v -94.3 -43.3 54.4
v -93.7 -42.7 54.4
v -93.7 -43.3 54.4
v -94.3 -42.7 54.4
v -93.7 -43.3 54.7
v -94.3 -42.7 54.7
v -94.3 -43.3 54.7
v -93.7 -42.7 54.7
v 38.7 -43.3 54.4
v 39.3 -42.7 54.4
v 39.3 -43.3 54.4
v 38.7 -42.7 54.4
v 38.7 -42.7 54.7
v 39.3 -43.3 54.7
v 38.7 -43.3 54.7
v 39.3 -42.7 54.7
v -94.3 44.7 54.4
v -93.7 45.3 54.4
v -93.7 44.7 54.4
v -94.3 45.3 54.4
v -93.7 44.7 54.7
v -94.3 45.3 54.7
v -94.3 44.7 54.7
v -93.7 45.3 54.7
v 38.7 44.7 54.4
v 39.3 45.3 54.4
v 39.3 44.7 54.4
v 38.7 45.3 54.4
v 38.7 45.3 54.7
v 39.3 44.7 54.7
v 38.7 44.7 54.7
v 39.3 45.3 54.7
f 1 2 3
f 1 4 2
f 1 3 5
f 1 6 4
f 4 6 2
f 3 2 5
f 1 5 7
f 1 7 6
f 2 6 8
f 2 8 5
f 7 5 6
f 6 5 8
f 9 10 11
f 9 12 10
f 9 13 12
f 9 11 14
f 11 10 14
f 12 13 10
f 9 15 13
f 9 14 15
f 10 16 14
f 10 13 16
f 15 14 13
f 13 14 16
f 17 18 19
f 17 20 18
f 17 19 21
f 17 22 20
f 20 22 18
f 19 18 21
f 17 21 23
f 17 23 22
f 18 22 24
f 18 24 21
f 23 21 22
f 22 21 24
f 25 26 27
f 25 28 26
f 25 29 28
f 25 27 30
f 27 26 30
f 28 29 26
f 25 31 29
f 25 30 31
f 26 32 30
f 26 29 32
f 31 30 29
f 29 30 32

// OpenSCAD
// file: ../../../cad/v3/hardware.scad
include <params.scad>
use <enclosure.scad>
// PROVISIONAL purchased component envelopes; not production part drawings.
module motor() {
 union() {
  translate([screw_x-6,motor_front-motor_l,motor_bottom]) cube([12,motor_l,10]);
  yrod(screw_x,motor_front-0.1,axis_z,shaft_d,shaft_l+0.1);
  for(x=[screw_x-3,screw_x+3]) translate([x-0.5,motor_front-motor_l-2,motor_bottom+4.5]) cube([1,2.1,1]);
 }
}
module shaft() { yrod(screw_x,motor_front,axis_z,shaft_d,shaft_l); }
module drive_nut(t=0) {
 difference() {
  translate([screw_x,carriage_back+t+nut_slot_y+0.1,axis_z]) rotate([-90,0,0]) union() {
   cylinder(d=nut_af/cos(30),h=nut_height,$fn=6);
   cylinder(d=nut_flange_d,h=nut_flange_t);
  }
  yrod(screw_x,carriage_back+t+nut_slot_y,axis_z,shaft_d+0.2,nut_height+0.2);
 }
}
module battery_holder(raise=0) {
 // Conservative single envelope including cell, contacts and holder.
 translate([93.2,-52,4.5+raise]) cube([22,74,21]);
}
module esp() {
 union() {
  translate([77.5,28,8.3]) cube([17.8,22.5,1.2]);
  translate([78.5,29,9.5]) cube([15.8,20.5,5]);
  translate([81.5,47,9.5]) cube([9,5,3.3]);
 }
}
module power_board() { translate([99,29,8.3]) cube([15,20,7.2]); }
module bridge_board() { translate([98.5,29,20.3]) cube([15,20,7]); }
module oled() {
 union() {
  translate([87.6,53.5,21.5]) cube([27.8,1.6,27.3]);
  translate([88.15,55.1,25]) cube([26.7,1.4,19.3]);
  translate([96.5,50.5,46]) cube([10,3,2.8]);
 }
}
module button() {
 union() {
  xrod(button_panel_x-button_body_l,button_y,button_z,button_body_d,button_body_l);
  xrod(button_panel_x,button_y,button_z,button_flange_d,2);
  xrod(button_panel_x+2,button_y,button_z,12.9,button_face_l-2);
  // Candidate fastening nut envelope; actual nut diameter/thickness to measure.
  difference() {
   xrod(button_panel_x-6,button_y,button_z,17.8,3);
   xrod(button_panel_x-6.1,button_y,button_z,button_hole_d,3.2);
  }
  // Two terminals only; solder and bend radius need physical confirmation.
  for(y=[button_y-2.425,button_y+2.425])
   translate([button_panel_x-button_body_l-button_terminal_l,y-.3,button_z-1]) cube([button_terminal_l,.6,2]);
 }
}
module acrylic() { translate([window_x0-2,window_y0-2,window_pane_z]) cube([window_x1-window_x0+4,window_y1-window_y0+4,window_pane_t]); }
module hinge_pin() { xrod(hinge_pin_x,hinge_y,hinge_z,2,hinge_pin_len); }
module thread_insert(x,y,z) {
 difference() {
  zhole(x,y,z,insert_od,insert_len);
  zhole(x,y,z-.1,2.05,insert_len+.2);
 }
}
module inserts_fixed() {
 for(p=battery_screws) thread_insert(p[0],p[1],2.9);
 for(x=keeper_x) thread_insert(x,keeper_y,44.3);
}
module inserts_lid() {
 for(p=window_clamps) thread_insert(p[0],p[1],window_ear_top);
}
module battery_connector() { translate([91.5,22,12.5]) cube([4.3,5,5]); }
module motor_pads() {
 // 0.3 mm compressed adhesive shim specification, not unspecified empty space.
 translate([78.5,motor_front-motor_l+.1,motor_bottom-0.3]) cube([12,motor_l-.2,0.3]);
 translate([78.5,motor_front-motor_l+.1,motor_top]) cube([12,motor_l-.2,0.3]);
 difference() {
  translate([78.5,-15,motor_bottom]) cube([12,0.3,10]);
  yrod(screw_x,-15.1,axis_z,4.7,0.6);
 }
 // Rear pad clears the two solder terminals.
 difference() {
  translate([78.5,motor_front-motor_l-.3,motor_bottom]) cube([12,0.3,10]);
  translate([80,motor_front-motor_l-.4,motor_bottom+4]) cube([9,0.5,2]);
 }
}
module board_pads() {
 translate([77.5,28,7.4]) cube([17.8,22.5,0.9]);
 translate([99,29,7.4]) cube([15,20,0.9]);
 translate([98.5,29,19.8]) cube([15,20,0.5]);
}

// Illustrative screw envelopes. Intentional pilot-thread interference is excluded
// from solid collision assertions. They remain in preview, BOM and total bounds.
module screw_down(x,y,top,len,d=2,flush=false) {
 color([0.45,0.47,0.5]) {
  zhole(x,y,top-len,d,len);
  if(flush) translate([x,y,top-1.3]) cylinder(d1=d,d2=4,h=1.3);
  else zhole(x,y,top,d==3?5.5:3.6,d==3?2:1.4);
 }
}
// Canonical fastener table: x,y,z,length,diameter,flush,rotationX,headless,owners.
// Preview and interference verification consume this SAME table.
// Stable connection names: keep existing names when adapting module brackets.
function fastener_ids(kind="fixed") = kind=="drive" ? ["F-nut-cap-left","F-nut-cap-right"] :
 kind=="lid" ? ["F-latch-left","F-latch-right","F-window-rear-left","F-window-rear-right","F-window-front-left","F-window-front-right"] :
 ["F-lock-rear-left","F-lock-rear-right","F-lock-front-left","F-lock-front-right",
 "F-guide-rear-left","F-guide-rear-right","F-guide-front","F-motor-left","F-motor-right",
 "F-tray-left","F-tray-right","F-deck-left","F-deck-right","F-esp-left","F-esp-right",
 "F-driver-left","F-driver-right","F-oled-left","F-oled-right",
 "F-battery-rear-left","F-battery-rear-right","F-battery-front-left","F-battery-front-right",
 "F-hinge-left","F-hinge-right"];
function fastener_specs(kind="fixed",t=0) = kind=="drive" ?
 [for(x=[screw_x-4.5,screw_x+4.5]) [x,carriage_back+t-0.2,46,6,2,false,0,false,["nut_cap","nut_carriage"]]] :
 kind=="lid" ? concat(
 [for(x=[93.5,112.5]) [x,8.5,45.2,8,3,false,180,false,["latch_retainer","lid"]]],
 [for(p=window_clamps) [p[0],p[1],window_inner_z,6,2,true,180,false,["window_grille","lid"]]]) :
 concat(
 [for(p=lock_mounts) [p[0],p[1],32.4,6,2,false,0,false,["lock_base","base_box"]]],
 [for(p=guide_screws) [p[0],p[1],44.9,8,2,false,0,false,["guide_cap","lock_base"]]],
 [for(p=motor_screws) [p[0],p[1],motor_clamp_z+2,8,2,false,0,false,["motor_clamp","lock_base"]]],
 [for(p=tray_screws) [p[0],p[1],7.4,4,2,false,0,false,["electronics_tray","base_box"]]],
 [for(p=deck_screws) [p[0],p[1],19.8,6,2,false,0,false,["upper_deck","electronics_tray"]]],
 [for(x=[76.2,96.7]) [x,39,16.8,6,2,false,0,false,["esp_clip","electronics_tray"]]],
 [for(x=[97,115]) [x,38,29.6,6,2,false,0,false,["upper_clip","upper_deck"]]],
 [for(x=[86.8,115.8]) [x,56.3,51,6,2,true,0,false,["oled_bridge","base_box"]]],
 [for(p=battery_screws) [p[0],p[1],0,8,2,true,180,false,["battery_hatch","base_box"]]],
 [for(i=[0:1]) [keeper_x[i],keeper_y,51.1,6,2,true,0,false,[i==0?"hinge_guard_left":"hinge_guard_right","base_box","inserts_fixed"]]]);
module render_screw(s) {
 translate([s[0],s[1],s[2]]) rotate([s[6],0,0])
 if(s[7]) zhole(0,0,-s[3],s[4],s[3]);
 else screw_down(0,0,0,s[3],s[4],s[5]);
}
module fixed_fasteners() { for(s=fastener_specs("fixed")) render_screw(s); }
module moving_fasteners(t=0) { for(s=fastener_specs("drive",t)) render_screw(s); }
module lid_fasteners() { for(s=fastener_specs("lid")) render_screw(s); }
// file: ../../../cad/v3/electronics.scad
include <params.scad>

module electronics_tray() {
 nominal_difference() {
  union() {
   cube_at([74.5,25.5,5.4],[42,27,2]);
   cube_at([74.5,25.5,7.3],[2.5,27,0.7]);
   cube_at([114,25.5,7.3],[2.5,27,0.7]);
   for(p=deck_screws) translate([p[0],p[1],7.3]) cylinder(r=1.3,h=10.7);
   for(x=[76.2,96.7]) cube_at([x-1.2,37,7.3],[2.4,4,7.5]);
  }
  for(p=tray_screws) pilot(p,5.2,8.2,2.4);
  for(x=[90,117]) zhole(x,24,5.2,6.4,3.2);
  for(p=deck_screws) pilot(p,13,18.2,1.7);
  for(x=[76.2,96.7]) zhole(x,39,9.8,1.7,5.2);
  // Tie slots for the lower power board; underside remains accessible off-box.
  for(x=[99.5,112.75]) cube_at([x,33,5.2],[tie_slot_width,8,3.2]);
 }
}
module upper_deck() {
 nominal_difference() {
  union() {
   cube_at([96,25.3,18],[21,27.2,1.8]);
   cube_at([96,27,19.7],[2.3,24,1.8]);
   cube_at([114.3,27,19.7],[2.7,24,1.8]);
   for(x=[97,115]) cube_at([x-1.3,36,19.7],[2.6,4,7.9]);
  }
  for(p=deck_screws) pilot(p,17.8,20,2.4);
  zhole(96.7,39,17.8,4,0.6);
  for(x=[97,115]) zhole(x,38,22.3,1.7,5.5);
 }
}
module esp_clip() {
 nominal_difference() {
  cube_at([74.5,37,14.8],[24,4,2]);
  for(x=[76.2,96.7]) zhole(x,39,14.6,2.4,2.4);
 }
}
module upper_clip() {
 nominal_difference() {
  cube_at([95.5,36,27.6],[21.5,4,2]);
  for(x=[97,115]) zhole(x,38,27.4,2.2,2.4);
 }
}
module oled_bridge() {
 nominal_difference() {
  cube_at([84.3,52.5,49.2],[34,6.1,1.8]);
  for(x=[86.8,115.8]) {
   zhole(x,56.3,49,2.4,2.2);
   countersink(x,56.3,49.7,2.4,4,1.3);
  }
 }
}
// file: ../../../cad/v3/lock.scad
include <params.scad>

module lock_base() {
 nominal_difference() {
  union() {
   cube_at([75,-46,lock_floor],[41,68,3]);
   // Continuous independent bolt support: bed, keyed rail, removable roof.
   cube_at([91,-19,lock_floor_top],[20,24.5,guide_bottom-lock_floor_top]);
   cube_at([bolt_x-key_w/2,-19,key_z0],[key_w,24.5,key_z1-key_z0]);
   for(p=guide_screws) translate([p[0],p[1],lock_floor_top-0.01]) cylinder(r=2.3,h=guide_top-lock_floor_top+0.01);
   for(p=motor_screws) translate([p[0],p[1],lock_floor_top-0.01]) cylinder(r=2.2,h=motor_clamp_z-lock_floor_top+0.01);
   // Motor cradle and front locating shoulder; clamp presses through thin pads.
   cube_at([77.2,-41.8,32.4],[14.6,27.5,motor_bottom-0.3-32.4]);
   cube_at([77.2,-16,32.4],[14.6,2.3,motor_clamp_z-32.4]);
   // Blind front socket: usable bore ends Y=19.8; last 1 mm is solid.
   cube_at([bolt_x-6,14.8,32.4],[12,6,11.6]);
  }
  // Conservative 25x12x10 body; includes the 2.5mm output offset.
  cube_at([screw_x-motor_w/2-0.3,motor_front-motor_l-0.3,motor_bottom-0.3],[motor_w+0.6,motor_l+0.6,motor_h+0.6]);
  yhole(screw_x,-16.3,axis_z,4.7,4);
  // Top-open U seat permits vertical insertion of motor + threaded drive.
  cube_at([screw_x-2.35,-16.3,axis_z],[4.7,4,motor_clamp_z-axis_z+0.2]);
  cube_at([bolt_x-latch_hole/2,13.8,axis_z-latch_hole/2],[latch_hole,6,latch_hole]);
  for(p=lock_mounts) pilot(p,29.2,32.6,2.4);
  for(p=guide_screws) pilot(p,33.2,43.1);
  for(p=motor_screws) pilot(p,motor_clamp_z-6,motor_clamp_z+0.2);
  // Flat reusable rail for future mechanical feedback adapters (SKU pending).
  for(y=[-12,2]) for(x=[112,115]) cube_at([x,y,29.2],[tie_slot_width,5,3.5]);
  // Wiring channels; no closed tunnel around the actuator.
  cube_at([110,15,29.2],[3,7.2,3.5]);
 }
}
module guide_cap() {
 nominal_difference() {
  cube_at([92,-20.5,guide_top],[23,26,guide_cap_t]);
  for(p=guide_screws) pilot(p,42.7,45.1,2.4);
 }
}
module motor_clamp() {
 nominal_difference() {
  cube_at([73.8,-35,motor_clamp_z],[21.4,16,2]);
  for(p=motor_screws) pilot(p,motor_clamp_z-0.2,motor_clamp_z+2.2,2.4);
  cube_at([90.8,-20.7,motor_clamp_z-0.2],[4.6,1.8,2.4]);
 }
}
module bolt_raw(t=0) {
 rear=bolt_back+t;
 nominal_difference() {
  union() {
   cube_at([bolt_x-body_w/2,rear-4,axis_z-body_w/2],[body_w,body_l+4,body_w]);
   cube_at([bolt_x-3,rear+body_l,axis_z-3],[6,tongue_l-taper_l+0.01,6]);
   translate([bolt_x,rear+body_l+tongue_l-taper_l,axis_z]) rotate([-90,0,0])
    linear_extrude(height=taper_l,scale=5/6) square([6,6],center=true);
   // Fork overlaps the main body; lateral/vertical float around the drive finger.
   cube_at([92,rear,axis_z-body_w/2],[7.6,6,body_w]);
  }
  cube_at([91,rear+1.7,35.2],[8.6,2.6,5.6]);
  cube_at([bolt_x-(key_w+0.6)/2,rear-4.1,33.2],[key_w+0.6,body_l+4.2,1.6]);
 }
}
module bolt(t=0,shift=0) { translate([0,0,shift]) bolt_raw(t); }
module nut_carriage(t=0) {
 rear=carriage_back+t;
 nominal_difference() {
  union() {
   cube_at([screw_x-7,rear-2,33.4],[13,10,10.6]);
   cube_at([screw_x+4.5,rear-1.5,36],[8.7,2,4]);
  }
  yhole(screw_x,rear-3,axis_z,shaft_d+0.4,12);
  translate([screw_x,rear+nut_slot_y,axis_z]) rotate([-90,0,0]) {
   cylinder(d=nut_slot_d,h=nut_slot_t,$fn=6);
   cylinder(d=nut_flange_d+0.4,h=nut_flange_t+0.2);
  }
  // Wide open top access for the nut: larger than its circumdiameter.
  cube_at([screw_x-5.3,rear+nut_slot_y,axis_z],[10.6,nut_slot_t,6.2]);
  for(x=[screw_x-4.5,screw_x+4.5]) zhole(x,rear-0.2,39.5,1.7,4.7);
 }
}
module nut_cap(t=0) {
 rear=carriage_back+t;
 nominal_difference() {
  cube_at([screw_x-6.5,rear-2,44],[12.5,10,2]);
  for(x=[screw_x-4.5,screw_x+4.5]) zhole(x,rear-0.2,43.8,2.4,2.4);
 }
}
module fit_bar() { cube([tongue_w,tongue_w,25]); }
module fit_gauge() {
 nominal_difference() {
  cube([30,14,8]);
  for(i=[0:2]) cube_at([2+i*9,3,-0.1],[6.4+i*0.2,6.4+i*0.2,8.2]);
 }
}
// file: ../../../cad/v3/enclosure.scad
include <params.scad>

module base_box() {
 nominal_difference() {
  union() {
   nominal_difference() {
    linear_extrude(height=shell_top) rounded_rect(L,W,4);
    translate([0,0,floor_t]) linear_extrude(height=49) rounded_rect(L-2*wall,W-2*wall,1);
   }
   cube_at([70.5,-57,2.9],[3,114,48.1]);
   // Stationary rear header reaches the same closed height as the lid.
   intersection() {
    cube_at([-117,-60,47],[234,9,8]);
    union() { cube_at([-118,-61,46],[236,11,5]); xrod(-118,hinge_y,hinge_z,8,236); }
   }
   for(k=fixed_knuckles) xrod(k[0],hinge_y,hinge_z,hinge_od,k[1]-k[0]);
   for(x=keeper_x) cube_at([x-4,-54,43.5],[8,6.5,4.8]);
   // Battery chamber: side/end walls and a fixed ceiling connected to outer wall.
   cube_at([90,-54.5,2.9],[2.7,79,23.1]);
   cube_at([90,-54.5,2.9],[30,2.2,23.1]);
   cube_at([90,22.3,2.9],[30,2.2,23.1]);
   cube_at([90,-54.5,26],[30,79,3.4]);
   for(p=battery_screws) translate([p[0],p[1],2.8]) cylinder(r=3,h=5.5);
   for(p=lock_mounts) if(p[0]<90) translate([p[0],p[1],2.9]) cylinder(r=3,h=26.5);
   for(p=tray_screws) translate([p[0],p[1],2.9]) cylinder(r=2.3,h=2.5);
   // OLED bottom stop and two connected side rails.
   cube_at([85.3,53,19.2],[32.4,4.1,2]);
   cube_at([85.3,53,21.1],[2.3,4.1,28.1]);
   cube_at([115.4,53,21.1],[2.3,4.1,28.1]);
   // Recessed side-wall panel: 5.7mm button face stays inside X=120.
   difference() {
    xrod(button_panel_x-3,button_y,button_z,21,120-(button_panel_x-3));
    xrod(button_panel_x,button_y,button_z,18.8,120-button_panel_x+.1);
   }

  }
  // A continuous bore is essential: otherwise the fixed header traps the pin.
  xhole(-120.1,hinge_y,hinge_z,hinge_bore,240.2);
  // Moving hinge knuckles and webs get a rectangular swept-side relief.
  for(k=moving_knuckles) cube_at([k[0]-0.3,-60.2,46.6],[k[1]-k[0]+0.6,9.8,9]);
  for(x=keeper_x) {
   cube_at([x-4.3,-58.3,48.3],[8.6,11.1,7]);
   zhole(x,keeper_y,43.8,2.4,4.6);
   let($feature_kind="insert") zhole(x,keeper_y,44.2,insert_hole_d(),4.2);
  }
  // Battery extraction aperture, and a shallow seat for the flush service plate.
  cube_at([92.7,-52.3,-0.1],[22.6,74.6,8.6]);
  cube_at([87.7,-56.3,-0.1],[31.6,82.6,3]);
  for(p=battery_screws) {
   pilot(p,2.7,8.4,2.4);
   let($feature_kind="insert") zhole(p[0],p[1],2.8,insert_hole_d(),4.1);
  }
  for(p=lock_mounts) pilot(p,26.2,29.6,1.7);
  for(p=tray_screws) pilot(p,3.1,5.6,1.7);
  // Battery connector passage enters the electronics bay, not the actuator above.
  cube_at([91,21.8,12],[7,3.4,6]);
  // Front optical window / recessed button. There is deliberately no USB hole.
  cube_at([87.7,56.7,24.5],[27.6,3.6,20.5]);
  xhole(button_panel_x-3.1,button_y,button_z,button_hole_d,3.2);
  xhole(button_panel_x,button_y,button_z,18.8,120-button_panel_x+.1);
  // PCB insertion channels; stop ledge remains below them.
  cube_at([87.3,53.2,21.3],[28.4,2.2,28.2]);
  cube_at([84.2,52.4,49.2],[34.2,6.3,1.9]);
  for(x=[86.8,115.8]) zhole(x,56.3,43,1.7,6.5);
 }
}
module lid() {
 union() {
 nominal_difference() {
  union() {
   cube_at([-120,-50.5,lid_bottom],[240,110.5,H-lid_bottom]);
   for(k=moving_knuckles) {
    xrod(k[0],hinge_y,hinge_z,hinge_od,k[1]-k[0]);
    cube_at([k[0],-53,51.4],[k[1]-k[0],4,3.6]);
   }
   // Internal T-head receiver and inside-only retainer screw lands.
   cube_at([92,3,46.7],[22,11,4.8]);
   // Inside-only hard stops carry screw preload instead of crushing the pane.
   for(p=window_clamps) cube_at([p[0]-9,p[1]-3.5,window_ear_top],[18,7,lid_bottom+0.1-window_ear_top]);
  }
  for(k=moving_knuckles) xhole(k[0]-0.1,hinge_y,hinge_z,hinge_bore,k[1]-k[0]+0.2);
  cube_at([window_x0,window_y0,window_ear_top-0.1],[window_x1-window_x0,window_y1-window_y0,H-window_ear_top+0.2]);
  // Interior rebate clears the pane; the outside grille closes it.
  cube_at([window_x0-3,window_y0-3,window_ear_top-0.1],[window_x1-window_x0+6,window_y1-window_y0+6,window_outer_z-window_ear_top+0.1]);
  cube_at([94.7,5.7,46.6],[16.6,5.6,3.7]);
  cube_at([97.2,5.7,45.8],[11.6,5.6,4.5]);
  for(x=[93.5,112.5]) zhole(x,8.5,45.8,2.4,8.4);
  for(p=window_clamps) {
   zhole(p[0],p[1],window_ear_top-0.1,2.4,54.2-window_ear_top+0.1);
   let($feature_kind="insert") zhole(p[0],p[1],window_ear_top-0.1,insert_hole_d(),4.1);
  }
 }
 // Union after cutting the opening: five short-span ribs join both edges.
 translate([0,0,window_outer_z]) linear_extrude(height=H-window_outer_z) window_grid_2d();
 }
}
module latch() {
 nominal_difference() {
  union() {
   cube_at([bolt_x-5.5,latch_y,latch_z0],[11,5,43.1-latch_z0]);
   cube_at([bolt_x-latch_neck_w/2,latch_y,43],[latch_neck_w,5,2.1]);
   cube_at([bolt_x-5.5,latch_y,45],[11,5,2.1]);
   cube_at([bolt_x-8,latch_y,47],[16,5,3]);
  }
  cube_at([bolt_x-latch_hole/2,latch_y-0.1,axis_z-latch_hole/2],[latch_hole,5.2,latch_hole]);
 }
}
module latch_retainer() {
 nominal_difference() {
  cube_at([92,3,retainer_z],[22,11,retainer_t]);
  cube_at([97.2,5.7,45],[11.6,5.6,2]);
  for(x=[93.5,112.5]) zhole(x,8.5,45,3.4,2);
 }
}
module window_grid_2d() {
 union() {
  nominal_difference() {
   translate([window_x0-3,window_y0-3]) square([window_x1-window_x0+6,window_y1-window_y0+6]);
   translate([window_x0,window_y0]) square([window_x1-window_x0,window_y1-window_y0]);
  }
  for(x=window_bar_x) {
   translate([x-window_bar_w/2,window_y0-2]) square([window_bar_w,window_y1-window_y0+4]);
   // Concave radius at all four rib roots, tangent to rib and window frame.
   for(side=[-1,1]) for(end=[0,1])
    translate([x+side*window_bar_w/2,end?window_y1:window_y0]) scale([side,end?-1:1])
     nominal_difference() { square([window_root_r,window_root_r]); translate([window_root_r,window_root_r]) circle(r=window_root_r); }
  }
 }
}
module window_grille() {
 nominal_difference() {
  union() {
   translate([0,0,window_inner_z]) linear_extrude(height=window_inner_t) window_grid_2d();
   for(p=window_clamps) cube_at([p[0]-9,p[1]-3.5,window_inner_z],[18,7,window_ear_t]);
  }
  for(p=window_clamps) {
   zhole(p[0],p[1],window_inner_z-0.1,2.4,window_inner_t+0.2);
   countersink(p[0],p[1],window_inner_z-0.01,4.2,2.4,1.31);
  }
 }
}
module battery_hatch() {
 nominal_difference() {
  union() {
   cube_at([88,-56,0],[31,82,2.6]);
   for(x=[96,112]) for(y=[-47,17]) cube_at([x-2,y-2,2.5],[4,4,1.8]);
  }
  for(p=battery_screws) {
   pilot(p,-0.1,2.8,2.4);
   countersink(p[0],p[1],-0.01,4.2,2.4,1.3);
  }
 }
}
module hinge_guard(side=-1) {
 x=side<0?keeper_x[0]:keeper_x[1];
 stop=side<0?hinge_pin_x-pin_end_play-keeper_wall:hinge_pin_x+hinge_pin_len+pin_end_play;
 nominal_difference() {
  union() {
   intersection() {
    union() {
     cube_at([x-4,-58,53],[8,7.2,2]);
     cube_at([x-4,-52,48.3],[8,1.2,6.7]);
     // End cheek remains within the fixed hinge's radial envelope.
     cube_at([stop,-58,48.3],[keeper_wall,6,6.7]);
    }
    xrod(x-4.1,hinge_y,hinge_z,8.4,8.2);
   }
   cube_at([x-4,-53.6,48.3],[8,6.1,2.8]);
  }
  zhole(x,keeper_y,48.1,2.4,3.2);
  countersink(x,keeper_y,49.8,2.4,4,1.3);
  zhole(x,keeper_y,51.09,4.2,4);
 }
}

module insert_coupon() {
 nominal_difference() {
  cube([36,12,6]);
  for(i=[0:2]) {
   zhole(6+i*12,6,1.8,2.8+i*.1,4.3);
   countersink(6+i*12,6,5.6,2.8+i*.1,3.5,.5);
  }
 }
}
module keeper_insert_coupon() {
 nominal_difference() {
  cube([8,6.5,4.8]);
  zhole(4,3.5,.3,2.4,4.6);
  zhole(4,3.5,.7,insert_pilot_d,4.2);
 }
}
module window_insert_coupon() {
 nominal_difference() {
  cube([18,7,5.1]);
  zhole(9,3.5,-.1,2.4,4.4);
  zhole(9,3.5,-.1,insert_pilot_d,4.1);
 }
}
module hinge_bore_coupon() {
 nominal_difference() {
  cube([20,30,8]);
  for(i=[0:2]) xhole(-.1,5+i*10,4,2.2+i*.2,20.2);
 }
}
// file: ../../../cad/v3/references.scad
// Generated from engineering/references.json; do not edit.
// SHA256 f9069af00d99415f6bf80c07423463d1202e891299ade11124e069a9ba9990c0
// Visual corner/platform profiles are approximate. Dimensions are nominal mm.
module reference_phone() {
 translate([-23,0,0]) union() {
  translate([0,0,9.43]) linear_extrude(height=8.75)
   offset(r=12) square([139.4,54.0],center=true);
  translate([-55.7,0,6.88])
   linear_extrude(height=2.55) offset(r=9) square([28,56],center=true);
  translate([-67.33,-24.630000000000003,5]) cylinder(d=16.2,h=1.88,$fn=64);
  translate([-48.09,-24.630000000000003,5]) cylinder(d=16.2,h=1.88,$fn=64);
  translate([-57.71000000000001,-6.640000000000001,5]) cylinder(d=16.2,h=1.88,$fn=64);
  translate([-50.870000000000005,-39.45,12.475]) cube([6.9,.45,2.66]);
  translate([-38.870000000000005,-39.45,12.475]) cube([11.2,.45,2.66]);
  translate([-24.67,-39.45,12.475]) cube([11.2,.45,2.66]);
  translate([-35.02,39.0,12.475]) cube([17.7,.45,2.66]);
  translate([21.56999999999999,39.0,12.475]) cube([17.1,.45,2.66]);
 }
}
module reference_card() {
 translate([-7,0,18.18])
 linear_extrude(height=0.76) offset(r=3.18)
 square([79.24,47.62],center=true);
}
// file: ../../../cad/v3/params.scad
// TetherLock V3 STRUCTURAL PROTOTYPE. mm / degrees. Hardware SKUs NOT frozen.
// World: X long direction; +Y front; Z bottom=0. Closed assembly <=240x120x55.
$fn=48;
L=240; W=120; H=55;
wall=3; floor_t=3; shell_top=51; lid_bottom=51.4;
divider_x=72; divider_t=3;
hinge_y=-55; hinge_z=51; hinge_od=8; hinge_bore=2.4;
fixed_knuckles=[[-102,-90],[-30,-18],[42,54]];
moving_knuckles=[[-89.6,-78],[-17.6,-6],[54.4,66]];
hinge_pin_x=-107; hinge_pin_len=180;
keeper_x=[-108,77.5]; keeper_y=-50.5;
pin_end_play=0.5; keeper_wall=1.5;
insert_od=3.2; insert_len=4; insert_pilot_d=2.9;
$print_bores=false;
function insert_hole_d() = $print_bores ? insert_pilot_d : insert_od+0.05;
stroke=14;
bolt_x=103; axis_z=38; bolt_back=-14.5; carriage_back=-11;
body_w=9.2; body_l=6; tongue_w=6; tongue_l=13.5; taper_l=0.8;
guide_clearance=0.3;
screw_x=84.5; motor_front=-15;
// Seller image: gearbox 9; motor text 16 vs drawing 15; reserve 25 total.
// Output offset 2.5: rotate motor about its shaft so body is ABOVE the axis.
motor_l=25; motor_w=12; motor_h=10; motor_axis_offset=2.5;
shaft_l=55; shaft_d=4; shaft_pitch=0.7; shaft_length_tolerance=1;
motor_bottom=axis_z+motor_axis_offset-motor_h/2;
motor_top=motor_bottom+motor_h; motor_clamp_z=motor_top+0.3;
// Supplier flange nut NOT dimensioned: conservative adjustable candidate.
nut_af=7; nut_flange_d=10; nut_height=5; nut_flange_t=1;
// R16-503 drawing; threaded mounting diameter remains provisional 16mm.
button_y=30; button_z=40.5; button_panel_x=114;
button_hole_d=16.4; button_body_d=15.8; button_flange_d=17.8;
button_body_l=18.3; button_terminal_l=6; button_face_l=5.7;
tie_width=2.5; tie_slot_width=3.0;
lock_floor=29.4; lock_floor_top=32.4;
guide_bottom=33.1; guide_top=42.9; guide_cap_t=2;
key_w=2.8; key_z0=33.0; key_z1=34.5;
nut_slot_d=nut_af/cos(30)+0.4; nut_slot_y=1.5; nut_slot_t=nut_height+0.4;
latch_y=6; latch_t=5; latch_hole=6.8;
latch_z0=32.6; latch_neck_w=6;
retainer_z=45.2; retainer_t=1.5;
window_x0=-100; window_x1=45; window_y0=-38; window_y1=40;
window_clamps=[[-94,-43],[39,-43],[-94,45],[39,45]];
window_bar_x=[-76,-52,-28,-4,20]; window_bar_w=5; window_root_r=2;
window_outer_z=52; window_pane_t=1.5;
window_pane_z=window_outer_z-window_pane_t;
// Pane contact and screw ears are independent: preload is carried by the ears.
window_inner_z=47.4; window_inner_t=3.1;
window_inner_top=window_inner_z+window_inner_t;
window_ear_t=2.5; window_ear_top=window_inner_z+window_ear_t;
assert(window_inner_z>=47,"Window grille must preserve storage headroom");
lock_mounts=[[77,-43],[113,-43],[77,19],[113,19]];
guide_screws=[[93.5,-18],[114,-18],[114,-2]];
motor_screws=[[76,-27],[93,-27]];
battery_screws=[[90,-54],[117,-54],[90,24],[117,24]];
tray_screws=[[76,27],[115,51]];
deck_screws=[[97.5,27],[115,50.8]];
print_parts=["base_box","lid","lock_base","guide_cap","motor_clamp",
 "bolt","nut_carriage","nut_cap","latch","latch_retainer","window_grille",
 "battery_hatch","electronics_tray","upper_deck","esp_clip","upper_clip",
 "oled_bridge","hinge_guard_left","hinge_guard_right","fit_bar","fit_gauge",
 "insert_coupon","keeper_insert_coupon","window_insert_coupon","hinge_bore_coupon"];
assembly_parts=["base_box","lid","lock_base","guide_cap","motor_clamp",
 "bolt","nut_carriage","nut_cap","latch","latch_retainer",
 "window_grille",
 "battery_hatch","electronics_tray","upper_deck","esp_clip","upper_clip","oled_bridge",
 "hinge_guard_left","hinge_guard_right"];
hardware_parts=["motor","drive_nut","battery_holder","esp","power_board",
 "bridge_board","oled","button","acrylic","hinge_pin","inserts_fixed","inserts_lid",
 "battery_connector",
 "motor_pads","board_pads"];
// All holes below are pilot/clearance geometry, not modelled screw threads.
module feature(axis,center,d,h,kind="clearance",details=[]) {
 if(!is_undef($export_features) && $export_features)
  echo(["TL_FEATURE",$feature_part,axis,center,d,h,kind,details]);
}
// These wrappers keep CAD feature dimensions attached to the geometry that uses
// them. The boolean operation is part of the export, not guessed from a mesh.
module nominal_difference() {
 base=is_undef($feature_operation)?"solid":$feature_operation;
 difference() {
  let($feature_operation=base) children(0);
  if($children>1) for(i=[1:$children-1])
   let($feature_operation=base=="solid"?"cut":"solid") children(i);
 }
}
module cube_at(position,size) {
 feature("BOX",position,0,0,"box",[size,is_undef($feature_operation)?"solid":$feature_operation]);
 translate(position) cube(size);
}
module zhole(x,y,z,d,h) {
 feature("Z",[x,y,z],d,h,is_undef($feature_kind)?(d<2?"pilot":"clearance"):$feature_kind);
 translate([x,y,z]) cylinder(d=d,h=h);
}
module yrod(x,y,z,d,h) { translate([x,y,z]) rotate([-90,0,0]) cylinder(d=d,h=h); }
module xrod(x,y,z,d,h) { translate([x,y,z]) rotate([0,90,0]) cylinder(d=d,h=h); }
module yhole(x,y,z,d,h,kind="clearance") { feature("Y",[x,y,z],d,h,kind); yrod(x,y,z,d,h); }
module xhole(x,y,z,d,h,kind="clearance") { feature("X",[x,y,z],d,h,kind); xrod(x,y,z,d,h); }
module countersink(x,y,z,d1,d2,h) {
 feature("Z",[x,y,z],d1,h,"countersink",[d2]);
 translate([x,y,z]) cylinder(d1=d1,d2=d2,h=h);
}
module rounded_rect(l,w,r) { offset(r=r) square([l-2*r,w-2*r],center=true); }
module lid_turn(a) { translate([0,hinge_y,hinge_z]) rotate([a,0,0]) translate([0,-hinge_y,-hinge_z]) children(); }
module pilot(xy,z0,z1,d=1.7) { let($feature_kind=d<2?"pilot":"clearance") zhole(xy[0],xy[1],z0,d,z1-z0); }
// main file
include <../../../cad/v3/assembly.scad>
view="metadata";
intersection(){lid();for(p=window_clamps)translate([p[0]-.3,p[1]-.3,54.4])cube([.6,.6,.3]);}
